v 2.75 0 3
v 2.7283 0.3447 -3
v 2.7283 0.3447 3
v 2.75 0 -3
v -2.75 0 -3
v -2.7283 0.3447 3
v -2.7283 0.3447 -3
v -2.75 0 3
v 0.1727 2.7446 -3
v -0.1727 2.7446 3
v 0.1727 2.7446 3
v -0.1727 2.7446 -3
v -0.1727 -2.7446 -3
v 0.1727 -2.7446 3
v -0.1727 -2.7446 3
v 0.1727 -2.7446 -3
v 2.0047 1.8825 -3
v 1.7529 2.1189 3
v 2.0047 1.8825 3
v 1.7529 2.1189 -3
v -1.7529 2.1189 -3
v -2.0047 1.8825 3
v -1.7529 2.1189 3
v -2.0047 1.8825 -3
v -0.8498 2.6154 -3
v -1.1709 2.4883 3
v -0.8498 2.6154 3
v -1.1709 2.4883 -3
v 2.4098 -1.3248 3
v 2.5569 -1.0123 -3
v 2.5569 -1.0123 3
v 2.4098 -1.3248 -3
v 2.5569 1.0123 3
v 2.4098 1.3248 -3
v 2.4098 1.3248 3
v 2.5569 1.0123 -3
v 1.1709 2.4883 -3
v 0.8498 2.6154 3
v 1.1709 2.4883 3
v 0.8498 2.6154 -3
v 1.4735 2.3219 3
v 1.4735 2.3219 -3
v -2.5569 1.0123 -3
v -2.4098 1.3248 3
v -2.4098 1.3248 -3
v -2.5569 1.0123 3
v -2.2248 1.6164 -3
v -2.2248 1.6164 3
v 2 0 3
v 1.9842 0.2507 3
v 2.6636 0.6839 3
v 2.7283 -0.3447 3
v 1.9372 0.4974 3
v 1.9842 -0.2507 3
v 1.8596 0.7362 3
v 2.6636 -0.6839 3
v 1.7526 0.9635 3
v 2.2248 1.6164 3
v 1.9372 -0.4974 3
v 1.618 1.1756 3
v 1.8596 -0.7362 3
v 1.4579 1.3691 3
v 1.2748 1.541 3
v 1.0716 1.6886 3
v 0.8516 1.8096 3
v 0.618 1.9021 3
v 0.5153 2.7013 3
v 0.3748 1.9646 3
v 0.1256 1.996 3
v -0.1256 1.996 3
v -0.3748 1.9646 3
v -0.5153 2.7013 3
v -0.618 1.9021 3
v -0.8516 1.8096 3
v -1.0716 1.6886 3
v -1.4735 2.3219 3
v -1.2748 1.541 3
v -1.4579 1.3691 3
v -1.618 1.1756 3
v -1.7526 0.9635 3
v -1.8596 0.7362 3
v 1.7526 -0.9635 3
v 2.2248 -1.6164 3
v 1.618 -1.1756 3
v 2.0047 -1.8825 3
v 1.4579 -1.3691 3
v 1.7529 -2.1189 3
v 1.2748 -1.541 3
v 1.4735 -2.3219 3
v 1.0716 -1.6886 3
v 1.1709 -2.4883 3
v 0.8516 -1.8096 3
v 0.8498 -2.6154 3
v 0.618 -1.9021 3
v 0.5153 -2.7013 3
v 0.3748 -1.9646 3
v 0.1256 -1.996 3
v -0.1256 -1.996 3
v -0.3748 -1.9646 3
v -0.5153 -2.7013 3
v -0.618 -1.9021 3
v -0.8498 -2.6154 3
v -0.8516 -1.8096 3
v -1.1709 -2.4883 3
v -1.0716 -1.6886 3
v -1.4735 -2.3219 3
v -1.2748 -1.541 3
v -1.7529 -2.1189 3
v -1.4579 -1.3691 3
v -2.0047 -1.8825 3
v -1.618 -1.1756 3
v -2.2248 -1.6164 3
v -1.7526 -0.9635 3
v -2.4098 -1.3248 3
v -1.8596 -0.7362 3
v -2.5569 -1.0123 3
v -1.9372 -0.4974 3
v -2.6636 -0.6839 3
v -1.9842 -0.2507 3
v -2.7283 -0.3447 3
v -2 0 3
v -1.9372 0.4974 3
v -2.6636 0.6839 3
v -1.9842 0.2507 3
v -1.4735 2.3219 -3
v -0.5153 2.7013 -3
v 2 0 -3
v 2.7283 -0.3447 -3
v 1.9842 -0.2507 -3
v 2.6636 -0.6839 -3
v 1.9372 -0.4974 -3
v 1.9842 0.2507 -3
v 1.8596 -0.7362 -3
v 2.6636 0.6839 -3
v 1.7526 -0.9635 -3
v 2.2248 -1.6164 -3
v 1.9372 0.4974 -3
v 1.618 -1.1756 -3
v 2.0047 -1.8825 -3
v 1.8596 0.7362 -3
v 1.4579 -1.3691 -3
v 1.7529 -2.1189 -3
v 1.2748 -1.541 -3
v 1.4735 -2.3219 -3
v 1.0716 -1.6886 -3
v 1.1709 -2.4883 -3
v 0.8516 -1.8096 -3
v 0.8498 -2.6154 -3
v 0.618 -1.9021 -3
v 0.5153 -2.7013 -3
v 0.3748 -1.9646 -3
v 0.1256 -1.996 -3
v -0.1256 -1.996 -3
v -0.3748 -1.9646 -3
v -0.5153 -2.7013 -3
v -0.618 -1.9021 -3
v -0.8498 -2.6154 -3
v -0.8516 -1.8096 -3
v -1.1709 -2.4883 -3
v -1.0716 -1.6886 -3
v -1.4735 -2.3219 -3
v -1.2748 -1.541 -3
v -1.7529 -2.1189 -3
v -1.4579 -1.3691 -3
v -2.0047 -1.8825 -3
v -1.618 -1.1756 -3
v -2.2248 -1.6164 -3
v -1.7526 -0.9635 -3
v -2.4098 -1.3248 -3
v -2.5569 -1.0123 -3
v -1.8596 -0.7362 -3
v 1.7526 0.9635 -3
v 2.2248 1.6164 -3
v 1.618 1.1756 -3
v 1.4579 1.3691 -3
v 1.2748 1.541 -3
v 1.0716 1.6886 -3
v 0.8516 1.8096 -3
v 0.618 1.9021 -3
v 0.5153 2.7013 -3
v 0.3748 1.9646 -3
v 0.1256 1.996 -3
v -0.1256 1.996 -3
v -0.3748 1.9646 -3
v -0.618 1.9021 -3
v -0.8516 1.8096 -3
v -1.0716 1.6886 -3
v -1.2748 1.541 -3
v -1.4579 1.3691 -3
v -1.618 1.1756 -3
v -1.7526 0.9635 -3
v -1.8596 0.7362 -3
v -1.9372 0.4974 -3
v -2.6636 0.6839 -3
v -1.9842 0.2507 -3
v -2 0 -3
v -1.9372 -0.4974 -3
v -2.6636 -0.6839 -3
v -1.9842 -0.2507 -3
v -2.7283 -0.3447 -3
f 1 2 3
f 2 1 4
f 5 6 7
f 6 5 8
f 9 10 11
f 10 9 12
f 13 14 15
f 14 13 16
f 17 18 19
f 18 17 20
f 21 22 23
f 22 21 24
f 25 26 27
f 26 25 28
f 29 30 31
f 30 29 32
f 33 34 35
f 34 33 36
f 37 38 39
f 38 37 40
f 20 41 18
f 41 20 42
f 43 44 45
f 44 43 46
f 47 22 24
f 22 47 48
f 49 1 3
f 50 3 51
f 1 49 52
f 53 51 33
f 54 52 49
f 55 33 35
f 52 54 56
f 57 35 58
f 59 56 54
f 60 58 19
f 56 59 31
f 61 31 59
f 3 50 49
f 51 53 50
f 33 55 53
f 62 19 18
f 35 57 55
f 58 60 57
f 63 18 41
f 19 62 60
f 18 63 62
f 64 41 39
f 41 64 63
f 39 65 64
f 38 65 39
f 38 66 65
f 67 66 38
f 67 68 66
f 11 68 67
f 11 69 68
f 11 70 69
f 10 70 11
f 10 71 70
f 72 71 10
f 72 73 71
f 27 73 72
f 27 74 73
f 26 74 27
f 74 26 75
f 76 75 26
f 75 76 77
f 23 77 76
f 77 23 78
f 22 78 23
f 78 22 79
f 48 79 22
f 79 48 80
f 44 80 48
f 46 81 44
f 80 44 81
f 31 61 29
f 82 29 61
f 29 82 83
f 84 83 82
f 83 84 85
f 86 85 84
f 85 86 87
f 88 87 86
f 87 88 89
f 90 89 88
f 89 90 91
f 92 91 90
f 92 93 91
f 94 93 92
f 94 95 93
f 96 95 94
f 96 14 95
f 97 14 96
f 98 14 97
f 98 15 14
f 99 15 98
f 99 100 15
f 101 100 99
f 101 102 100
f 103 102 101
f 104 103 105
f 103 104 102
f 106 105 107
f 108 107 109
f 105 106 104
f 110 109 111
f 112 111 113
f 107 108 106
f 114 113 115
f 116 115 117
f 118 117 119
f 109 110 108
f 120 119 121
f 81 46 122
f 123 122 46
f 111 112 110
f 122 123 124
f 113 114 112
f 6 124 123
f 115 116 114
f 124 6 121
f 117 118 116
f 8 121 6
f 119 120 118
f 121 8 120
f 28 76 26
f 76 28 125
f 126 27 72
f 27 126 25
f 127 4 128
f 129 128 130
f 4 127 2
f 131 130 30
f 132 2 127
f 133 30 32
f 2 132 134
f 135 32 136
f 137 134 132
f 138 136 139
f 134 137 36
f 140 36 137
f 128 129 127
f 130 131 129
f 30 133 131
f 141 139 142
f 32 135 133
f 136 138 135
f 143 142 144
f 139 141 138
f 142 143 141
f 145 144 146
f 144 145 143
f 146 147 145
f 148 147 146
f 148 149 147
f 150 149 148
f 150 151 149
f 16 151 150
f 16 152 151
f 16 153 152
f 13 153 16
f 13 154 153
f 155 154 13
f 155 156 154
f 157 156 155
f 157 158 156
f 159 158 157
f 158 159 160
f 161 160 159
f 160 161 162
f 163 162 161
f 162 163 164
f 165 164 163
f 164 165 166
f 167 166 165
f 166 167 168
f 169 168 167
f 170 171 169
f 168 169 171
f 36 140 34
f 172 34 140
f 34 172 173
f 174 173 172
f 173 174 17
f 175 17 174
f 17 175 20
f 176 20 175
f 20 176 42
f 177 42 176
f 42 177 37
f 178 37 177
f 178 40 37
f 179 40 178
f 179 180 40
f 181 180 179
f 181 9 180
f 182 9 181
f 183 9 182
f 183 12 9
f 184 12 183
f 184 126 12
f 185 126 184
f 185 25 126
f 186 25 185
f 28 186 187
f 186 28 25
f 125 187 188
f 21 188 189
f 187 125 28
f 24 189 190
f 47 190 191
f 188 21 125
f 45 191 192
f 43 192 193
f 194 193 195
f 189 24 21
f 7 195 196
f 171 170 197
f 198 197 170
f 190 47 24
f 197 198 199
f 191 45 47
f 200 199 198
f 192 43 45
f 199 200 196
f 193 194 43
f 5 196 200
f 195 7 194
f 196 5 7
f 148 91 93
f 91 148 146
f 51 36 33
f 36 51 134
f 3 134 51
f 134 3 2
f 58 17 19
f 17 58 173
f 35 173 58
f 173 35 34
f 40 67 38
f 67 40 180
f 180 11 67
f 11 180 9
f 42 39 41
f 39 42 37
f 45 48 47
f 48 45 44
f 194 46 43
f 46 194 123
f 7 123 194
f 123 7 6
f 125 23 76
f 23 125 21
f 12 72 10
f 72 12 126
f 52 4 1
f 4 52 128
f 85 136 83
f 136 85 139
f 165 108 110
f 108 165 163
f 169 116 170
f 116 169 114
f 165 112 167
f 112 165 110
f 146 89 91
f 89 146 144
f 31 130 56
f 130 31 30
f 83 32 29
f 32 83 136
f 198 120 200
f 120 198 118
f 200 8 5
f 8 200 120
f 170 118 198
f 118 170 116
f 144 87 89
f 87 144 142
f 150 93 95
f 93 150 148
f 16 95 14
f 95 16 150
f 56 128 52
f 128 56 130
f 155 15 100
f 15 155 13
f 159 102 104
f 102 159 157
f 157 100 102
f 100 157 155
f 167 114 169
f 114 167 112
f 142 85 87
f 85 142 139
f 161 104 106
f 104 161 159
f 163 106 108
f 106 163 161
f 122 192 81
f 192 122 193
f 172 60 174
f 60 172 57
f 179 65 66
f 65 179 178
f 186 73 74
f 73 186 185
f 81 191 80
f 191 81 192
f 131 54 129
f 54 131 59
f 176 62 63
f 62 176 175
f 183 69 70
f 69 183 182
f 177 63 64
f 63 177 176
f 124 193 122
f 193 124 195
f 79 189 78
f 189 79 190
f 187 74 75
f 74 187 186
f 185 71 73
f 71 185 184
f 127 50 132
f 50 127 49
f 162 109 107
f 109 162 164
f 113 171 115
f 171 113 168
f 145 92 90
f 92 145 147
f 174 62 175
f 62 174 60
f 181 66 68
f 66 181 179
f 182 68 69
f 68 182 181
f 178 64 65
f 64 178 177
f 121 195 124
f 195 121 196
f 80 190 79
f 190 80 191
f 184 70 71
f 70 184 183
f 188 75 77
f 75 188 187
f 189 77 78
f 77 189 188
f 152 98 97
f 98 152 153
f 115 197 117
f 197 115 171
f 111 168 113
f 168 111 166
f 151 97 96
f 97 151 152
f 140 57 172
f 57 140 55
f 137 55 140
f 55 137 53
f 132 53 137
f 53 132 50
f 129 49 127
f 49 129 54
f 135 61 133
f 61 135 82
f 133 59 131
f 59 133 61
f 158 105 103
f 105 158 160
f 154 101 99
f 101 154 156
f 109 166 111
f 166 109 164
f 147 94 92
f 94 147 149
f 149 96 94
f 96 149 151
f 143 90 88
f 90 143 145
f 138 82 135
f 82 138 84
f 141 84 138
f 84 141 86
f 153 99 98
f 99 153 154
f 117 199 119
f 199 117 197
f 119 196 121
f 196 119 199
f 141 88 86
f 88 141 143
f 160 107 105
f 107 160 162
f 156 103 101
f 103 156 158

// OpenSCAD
$fn = 50;


difference() {
	union() {
		translate(v = [0, 0, -3.0000000000]) {
			cylinder(h = 6, r = 2.7500000000);
		}
	}
	union() {
		translate(v = [0, 0, -100.0000000000]) {
			cylinder(h = 200, r = 2.0000000000);
		}
	}
}
